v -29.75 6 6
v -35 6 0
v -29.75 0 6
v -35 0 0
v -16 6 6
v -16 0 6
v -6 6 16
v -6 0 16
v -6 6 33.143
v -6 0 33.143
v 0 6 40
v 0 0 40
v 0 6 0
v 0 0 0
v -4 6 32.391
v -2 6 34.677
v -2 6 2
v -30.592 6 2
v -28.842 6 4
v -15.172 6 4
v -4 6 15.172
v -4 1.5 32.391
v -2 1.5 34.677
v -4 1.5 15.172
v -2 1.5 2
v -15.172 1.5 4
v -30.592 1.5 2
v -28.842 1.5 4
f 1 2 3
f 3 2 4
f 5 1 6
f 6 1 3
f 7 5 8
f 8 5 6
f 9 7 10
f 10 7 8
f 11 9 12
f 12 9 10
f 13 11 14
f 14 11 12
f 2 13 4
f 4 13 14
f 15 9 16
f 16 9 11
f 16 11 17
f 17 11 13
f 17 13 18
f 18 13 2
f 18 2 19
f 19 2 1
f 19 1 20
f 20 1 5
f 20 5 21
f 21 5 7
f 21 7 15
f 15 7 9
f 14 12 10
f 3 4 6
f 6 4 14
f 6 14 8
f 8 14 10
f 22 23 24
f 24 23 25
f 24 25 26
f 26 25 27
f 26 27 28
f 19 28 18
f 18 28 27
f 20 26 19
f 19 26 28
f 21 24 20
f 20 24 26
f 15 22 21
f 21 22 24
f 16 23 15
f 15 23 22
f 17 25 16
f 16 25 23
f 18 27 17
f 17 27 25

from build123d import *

# Parameters (mm, degrees)
EXTRUDE_1_DEPTH     = 6
CUT_EXTRUDE_1_DEPTH = 4.5


with BuildPart() as part:
    # 草图1 → 凸台-拉伸1 (new body)
    with BuildSketch(Plane(origin=(0, 0, 0), x_dir=(1, 0, 0), z_dir=(0, 1, 0))):
        Polygon((-35, 0), (0, 0), (0, -40), (-6, -33.142857143), (-6, -16), (-16, -6), (-29.75, -6), align=None)
    extrude(amount=EXTRUDE_1_DEPTH)

    # 草图3 → 切除-拉伸1 (cut)
    with BuildSketch(Plane(origin=(0, 6, 0), x_dir=(1, 0, 0), z_dir=(0, 1, 0))):
        Polygon((-30.592463547, -2), (-28.842463547, -4), (-15.171572875, -4), (-4, -15.171572875), (-4, -32.391386911), (-2, -34.677101196), (-2, -2), align=None)
    extrude(amount=-CUT_EXTRUDE_1_DEPTH, mode=Mode.SUBTRACT)


solid = part.part
